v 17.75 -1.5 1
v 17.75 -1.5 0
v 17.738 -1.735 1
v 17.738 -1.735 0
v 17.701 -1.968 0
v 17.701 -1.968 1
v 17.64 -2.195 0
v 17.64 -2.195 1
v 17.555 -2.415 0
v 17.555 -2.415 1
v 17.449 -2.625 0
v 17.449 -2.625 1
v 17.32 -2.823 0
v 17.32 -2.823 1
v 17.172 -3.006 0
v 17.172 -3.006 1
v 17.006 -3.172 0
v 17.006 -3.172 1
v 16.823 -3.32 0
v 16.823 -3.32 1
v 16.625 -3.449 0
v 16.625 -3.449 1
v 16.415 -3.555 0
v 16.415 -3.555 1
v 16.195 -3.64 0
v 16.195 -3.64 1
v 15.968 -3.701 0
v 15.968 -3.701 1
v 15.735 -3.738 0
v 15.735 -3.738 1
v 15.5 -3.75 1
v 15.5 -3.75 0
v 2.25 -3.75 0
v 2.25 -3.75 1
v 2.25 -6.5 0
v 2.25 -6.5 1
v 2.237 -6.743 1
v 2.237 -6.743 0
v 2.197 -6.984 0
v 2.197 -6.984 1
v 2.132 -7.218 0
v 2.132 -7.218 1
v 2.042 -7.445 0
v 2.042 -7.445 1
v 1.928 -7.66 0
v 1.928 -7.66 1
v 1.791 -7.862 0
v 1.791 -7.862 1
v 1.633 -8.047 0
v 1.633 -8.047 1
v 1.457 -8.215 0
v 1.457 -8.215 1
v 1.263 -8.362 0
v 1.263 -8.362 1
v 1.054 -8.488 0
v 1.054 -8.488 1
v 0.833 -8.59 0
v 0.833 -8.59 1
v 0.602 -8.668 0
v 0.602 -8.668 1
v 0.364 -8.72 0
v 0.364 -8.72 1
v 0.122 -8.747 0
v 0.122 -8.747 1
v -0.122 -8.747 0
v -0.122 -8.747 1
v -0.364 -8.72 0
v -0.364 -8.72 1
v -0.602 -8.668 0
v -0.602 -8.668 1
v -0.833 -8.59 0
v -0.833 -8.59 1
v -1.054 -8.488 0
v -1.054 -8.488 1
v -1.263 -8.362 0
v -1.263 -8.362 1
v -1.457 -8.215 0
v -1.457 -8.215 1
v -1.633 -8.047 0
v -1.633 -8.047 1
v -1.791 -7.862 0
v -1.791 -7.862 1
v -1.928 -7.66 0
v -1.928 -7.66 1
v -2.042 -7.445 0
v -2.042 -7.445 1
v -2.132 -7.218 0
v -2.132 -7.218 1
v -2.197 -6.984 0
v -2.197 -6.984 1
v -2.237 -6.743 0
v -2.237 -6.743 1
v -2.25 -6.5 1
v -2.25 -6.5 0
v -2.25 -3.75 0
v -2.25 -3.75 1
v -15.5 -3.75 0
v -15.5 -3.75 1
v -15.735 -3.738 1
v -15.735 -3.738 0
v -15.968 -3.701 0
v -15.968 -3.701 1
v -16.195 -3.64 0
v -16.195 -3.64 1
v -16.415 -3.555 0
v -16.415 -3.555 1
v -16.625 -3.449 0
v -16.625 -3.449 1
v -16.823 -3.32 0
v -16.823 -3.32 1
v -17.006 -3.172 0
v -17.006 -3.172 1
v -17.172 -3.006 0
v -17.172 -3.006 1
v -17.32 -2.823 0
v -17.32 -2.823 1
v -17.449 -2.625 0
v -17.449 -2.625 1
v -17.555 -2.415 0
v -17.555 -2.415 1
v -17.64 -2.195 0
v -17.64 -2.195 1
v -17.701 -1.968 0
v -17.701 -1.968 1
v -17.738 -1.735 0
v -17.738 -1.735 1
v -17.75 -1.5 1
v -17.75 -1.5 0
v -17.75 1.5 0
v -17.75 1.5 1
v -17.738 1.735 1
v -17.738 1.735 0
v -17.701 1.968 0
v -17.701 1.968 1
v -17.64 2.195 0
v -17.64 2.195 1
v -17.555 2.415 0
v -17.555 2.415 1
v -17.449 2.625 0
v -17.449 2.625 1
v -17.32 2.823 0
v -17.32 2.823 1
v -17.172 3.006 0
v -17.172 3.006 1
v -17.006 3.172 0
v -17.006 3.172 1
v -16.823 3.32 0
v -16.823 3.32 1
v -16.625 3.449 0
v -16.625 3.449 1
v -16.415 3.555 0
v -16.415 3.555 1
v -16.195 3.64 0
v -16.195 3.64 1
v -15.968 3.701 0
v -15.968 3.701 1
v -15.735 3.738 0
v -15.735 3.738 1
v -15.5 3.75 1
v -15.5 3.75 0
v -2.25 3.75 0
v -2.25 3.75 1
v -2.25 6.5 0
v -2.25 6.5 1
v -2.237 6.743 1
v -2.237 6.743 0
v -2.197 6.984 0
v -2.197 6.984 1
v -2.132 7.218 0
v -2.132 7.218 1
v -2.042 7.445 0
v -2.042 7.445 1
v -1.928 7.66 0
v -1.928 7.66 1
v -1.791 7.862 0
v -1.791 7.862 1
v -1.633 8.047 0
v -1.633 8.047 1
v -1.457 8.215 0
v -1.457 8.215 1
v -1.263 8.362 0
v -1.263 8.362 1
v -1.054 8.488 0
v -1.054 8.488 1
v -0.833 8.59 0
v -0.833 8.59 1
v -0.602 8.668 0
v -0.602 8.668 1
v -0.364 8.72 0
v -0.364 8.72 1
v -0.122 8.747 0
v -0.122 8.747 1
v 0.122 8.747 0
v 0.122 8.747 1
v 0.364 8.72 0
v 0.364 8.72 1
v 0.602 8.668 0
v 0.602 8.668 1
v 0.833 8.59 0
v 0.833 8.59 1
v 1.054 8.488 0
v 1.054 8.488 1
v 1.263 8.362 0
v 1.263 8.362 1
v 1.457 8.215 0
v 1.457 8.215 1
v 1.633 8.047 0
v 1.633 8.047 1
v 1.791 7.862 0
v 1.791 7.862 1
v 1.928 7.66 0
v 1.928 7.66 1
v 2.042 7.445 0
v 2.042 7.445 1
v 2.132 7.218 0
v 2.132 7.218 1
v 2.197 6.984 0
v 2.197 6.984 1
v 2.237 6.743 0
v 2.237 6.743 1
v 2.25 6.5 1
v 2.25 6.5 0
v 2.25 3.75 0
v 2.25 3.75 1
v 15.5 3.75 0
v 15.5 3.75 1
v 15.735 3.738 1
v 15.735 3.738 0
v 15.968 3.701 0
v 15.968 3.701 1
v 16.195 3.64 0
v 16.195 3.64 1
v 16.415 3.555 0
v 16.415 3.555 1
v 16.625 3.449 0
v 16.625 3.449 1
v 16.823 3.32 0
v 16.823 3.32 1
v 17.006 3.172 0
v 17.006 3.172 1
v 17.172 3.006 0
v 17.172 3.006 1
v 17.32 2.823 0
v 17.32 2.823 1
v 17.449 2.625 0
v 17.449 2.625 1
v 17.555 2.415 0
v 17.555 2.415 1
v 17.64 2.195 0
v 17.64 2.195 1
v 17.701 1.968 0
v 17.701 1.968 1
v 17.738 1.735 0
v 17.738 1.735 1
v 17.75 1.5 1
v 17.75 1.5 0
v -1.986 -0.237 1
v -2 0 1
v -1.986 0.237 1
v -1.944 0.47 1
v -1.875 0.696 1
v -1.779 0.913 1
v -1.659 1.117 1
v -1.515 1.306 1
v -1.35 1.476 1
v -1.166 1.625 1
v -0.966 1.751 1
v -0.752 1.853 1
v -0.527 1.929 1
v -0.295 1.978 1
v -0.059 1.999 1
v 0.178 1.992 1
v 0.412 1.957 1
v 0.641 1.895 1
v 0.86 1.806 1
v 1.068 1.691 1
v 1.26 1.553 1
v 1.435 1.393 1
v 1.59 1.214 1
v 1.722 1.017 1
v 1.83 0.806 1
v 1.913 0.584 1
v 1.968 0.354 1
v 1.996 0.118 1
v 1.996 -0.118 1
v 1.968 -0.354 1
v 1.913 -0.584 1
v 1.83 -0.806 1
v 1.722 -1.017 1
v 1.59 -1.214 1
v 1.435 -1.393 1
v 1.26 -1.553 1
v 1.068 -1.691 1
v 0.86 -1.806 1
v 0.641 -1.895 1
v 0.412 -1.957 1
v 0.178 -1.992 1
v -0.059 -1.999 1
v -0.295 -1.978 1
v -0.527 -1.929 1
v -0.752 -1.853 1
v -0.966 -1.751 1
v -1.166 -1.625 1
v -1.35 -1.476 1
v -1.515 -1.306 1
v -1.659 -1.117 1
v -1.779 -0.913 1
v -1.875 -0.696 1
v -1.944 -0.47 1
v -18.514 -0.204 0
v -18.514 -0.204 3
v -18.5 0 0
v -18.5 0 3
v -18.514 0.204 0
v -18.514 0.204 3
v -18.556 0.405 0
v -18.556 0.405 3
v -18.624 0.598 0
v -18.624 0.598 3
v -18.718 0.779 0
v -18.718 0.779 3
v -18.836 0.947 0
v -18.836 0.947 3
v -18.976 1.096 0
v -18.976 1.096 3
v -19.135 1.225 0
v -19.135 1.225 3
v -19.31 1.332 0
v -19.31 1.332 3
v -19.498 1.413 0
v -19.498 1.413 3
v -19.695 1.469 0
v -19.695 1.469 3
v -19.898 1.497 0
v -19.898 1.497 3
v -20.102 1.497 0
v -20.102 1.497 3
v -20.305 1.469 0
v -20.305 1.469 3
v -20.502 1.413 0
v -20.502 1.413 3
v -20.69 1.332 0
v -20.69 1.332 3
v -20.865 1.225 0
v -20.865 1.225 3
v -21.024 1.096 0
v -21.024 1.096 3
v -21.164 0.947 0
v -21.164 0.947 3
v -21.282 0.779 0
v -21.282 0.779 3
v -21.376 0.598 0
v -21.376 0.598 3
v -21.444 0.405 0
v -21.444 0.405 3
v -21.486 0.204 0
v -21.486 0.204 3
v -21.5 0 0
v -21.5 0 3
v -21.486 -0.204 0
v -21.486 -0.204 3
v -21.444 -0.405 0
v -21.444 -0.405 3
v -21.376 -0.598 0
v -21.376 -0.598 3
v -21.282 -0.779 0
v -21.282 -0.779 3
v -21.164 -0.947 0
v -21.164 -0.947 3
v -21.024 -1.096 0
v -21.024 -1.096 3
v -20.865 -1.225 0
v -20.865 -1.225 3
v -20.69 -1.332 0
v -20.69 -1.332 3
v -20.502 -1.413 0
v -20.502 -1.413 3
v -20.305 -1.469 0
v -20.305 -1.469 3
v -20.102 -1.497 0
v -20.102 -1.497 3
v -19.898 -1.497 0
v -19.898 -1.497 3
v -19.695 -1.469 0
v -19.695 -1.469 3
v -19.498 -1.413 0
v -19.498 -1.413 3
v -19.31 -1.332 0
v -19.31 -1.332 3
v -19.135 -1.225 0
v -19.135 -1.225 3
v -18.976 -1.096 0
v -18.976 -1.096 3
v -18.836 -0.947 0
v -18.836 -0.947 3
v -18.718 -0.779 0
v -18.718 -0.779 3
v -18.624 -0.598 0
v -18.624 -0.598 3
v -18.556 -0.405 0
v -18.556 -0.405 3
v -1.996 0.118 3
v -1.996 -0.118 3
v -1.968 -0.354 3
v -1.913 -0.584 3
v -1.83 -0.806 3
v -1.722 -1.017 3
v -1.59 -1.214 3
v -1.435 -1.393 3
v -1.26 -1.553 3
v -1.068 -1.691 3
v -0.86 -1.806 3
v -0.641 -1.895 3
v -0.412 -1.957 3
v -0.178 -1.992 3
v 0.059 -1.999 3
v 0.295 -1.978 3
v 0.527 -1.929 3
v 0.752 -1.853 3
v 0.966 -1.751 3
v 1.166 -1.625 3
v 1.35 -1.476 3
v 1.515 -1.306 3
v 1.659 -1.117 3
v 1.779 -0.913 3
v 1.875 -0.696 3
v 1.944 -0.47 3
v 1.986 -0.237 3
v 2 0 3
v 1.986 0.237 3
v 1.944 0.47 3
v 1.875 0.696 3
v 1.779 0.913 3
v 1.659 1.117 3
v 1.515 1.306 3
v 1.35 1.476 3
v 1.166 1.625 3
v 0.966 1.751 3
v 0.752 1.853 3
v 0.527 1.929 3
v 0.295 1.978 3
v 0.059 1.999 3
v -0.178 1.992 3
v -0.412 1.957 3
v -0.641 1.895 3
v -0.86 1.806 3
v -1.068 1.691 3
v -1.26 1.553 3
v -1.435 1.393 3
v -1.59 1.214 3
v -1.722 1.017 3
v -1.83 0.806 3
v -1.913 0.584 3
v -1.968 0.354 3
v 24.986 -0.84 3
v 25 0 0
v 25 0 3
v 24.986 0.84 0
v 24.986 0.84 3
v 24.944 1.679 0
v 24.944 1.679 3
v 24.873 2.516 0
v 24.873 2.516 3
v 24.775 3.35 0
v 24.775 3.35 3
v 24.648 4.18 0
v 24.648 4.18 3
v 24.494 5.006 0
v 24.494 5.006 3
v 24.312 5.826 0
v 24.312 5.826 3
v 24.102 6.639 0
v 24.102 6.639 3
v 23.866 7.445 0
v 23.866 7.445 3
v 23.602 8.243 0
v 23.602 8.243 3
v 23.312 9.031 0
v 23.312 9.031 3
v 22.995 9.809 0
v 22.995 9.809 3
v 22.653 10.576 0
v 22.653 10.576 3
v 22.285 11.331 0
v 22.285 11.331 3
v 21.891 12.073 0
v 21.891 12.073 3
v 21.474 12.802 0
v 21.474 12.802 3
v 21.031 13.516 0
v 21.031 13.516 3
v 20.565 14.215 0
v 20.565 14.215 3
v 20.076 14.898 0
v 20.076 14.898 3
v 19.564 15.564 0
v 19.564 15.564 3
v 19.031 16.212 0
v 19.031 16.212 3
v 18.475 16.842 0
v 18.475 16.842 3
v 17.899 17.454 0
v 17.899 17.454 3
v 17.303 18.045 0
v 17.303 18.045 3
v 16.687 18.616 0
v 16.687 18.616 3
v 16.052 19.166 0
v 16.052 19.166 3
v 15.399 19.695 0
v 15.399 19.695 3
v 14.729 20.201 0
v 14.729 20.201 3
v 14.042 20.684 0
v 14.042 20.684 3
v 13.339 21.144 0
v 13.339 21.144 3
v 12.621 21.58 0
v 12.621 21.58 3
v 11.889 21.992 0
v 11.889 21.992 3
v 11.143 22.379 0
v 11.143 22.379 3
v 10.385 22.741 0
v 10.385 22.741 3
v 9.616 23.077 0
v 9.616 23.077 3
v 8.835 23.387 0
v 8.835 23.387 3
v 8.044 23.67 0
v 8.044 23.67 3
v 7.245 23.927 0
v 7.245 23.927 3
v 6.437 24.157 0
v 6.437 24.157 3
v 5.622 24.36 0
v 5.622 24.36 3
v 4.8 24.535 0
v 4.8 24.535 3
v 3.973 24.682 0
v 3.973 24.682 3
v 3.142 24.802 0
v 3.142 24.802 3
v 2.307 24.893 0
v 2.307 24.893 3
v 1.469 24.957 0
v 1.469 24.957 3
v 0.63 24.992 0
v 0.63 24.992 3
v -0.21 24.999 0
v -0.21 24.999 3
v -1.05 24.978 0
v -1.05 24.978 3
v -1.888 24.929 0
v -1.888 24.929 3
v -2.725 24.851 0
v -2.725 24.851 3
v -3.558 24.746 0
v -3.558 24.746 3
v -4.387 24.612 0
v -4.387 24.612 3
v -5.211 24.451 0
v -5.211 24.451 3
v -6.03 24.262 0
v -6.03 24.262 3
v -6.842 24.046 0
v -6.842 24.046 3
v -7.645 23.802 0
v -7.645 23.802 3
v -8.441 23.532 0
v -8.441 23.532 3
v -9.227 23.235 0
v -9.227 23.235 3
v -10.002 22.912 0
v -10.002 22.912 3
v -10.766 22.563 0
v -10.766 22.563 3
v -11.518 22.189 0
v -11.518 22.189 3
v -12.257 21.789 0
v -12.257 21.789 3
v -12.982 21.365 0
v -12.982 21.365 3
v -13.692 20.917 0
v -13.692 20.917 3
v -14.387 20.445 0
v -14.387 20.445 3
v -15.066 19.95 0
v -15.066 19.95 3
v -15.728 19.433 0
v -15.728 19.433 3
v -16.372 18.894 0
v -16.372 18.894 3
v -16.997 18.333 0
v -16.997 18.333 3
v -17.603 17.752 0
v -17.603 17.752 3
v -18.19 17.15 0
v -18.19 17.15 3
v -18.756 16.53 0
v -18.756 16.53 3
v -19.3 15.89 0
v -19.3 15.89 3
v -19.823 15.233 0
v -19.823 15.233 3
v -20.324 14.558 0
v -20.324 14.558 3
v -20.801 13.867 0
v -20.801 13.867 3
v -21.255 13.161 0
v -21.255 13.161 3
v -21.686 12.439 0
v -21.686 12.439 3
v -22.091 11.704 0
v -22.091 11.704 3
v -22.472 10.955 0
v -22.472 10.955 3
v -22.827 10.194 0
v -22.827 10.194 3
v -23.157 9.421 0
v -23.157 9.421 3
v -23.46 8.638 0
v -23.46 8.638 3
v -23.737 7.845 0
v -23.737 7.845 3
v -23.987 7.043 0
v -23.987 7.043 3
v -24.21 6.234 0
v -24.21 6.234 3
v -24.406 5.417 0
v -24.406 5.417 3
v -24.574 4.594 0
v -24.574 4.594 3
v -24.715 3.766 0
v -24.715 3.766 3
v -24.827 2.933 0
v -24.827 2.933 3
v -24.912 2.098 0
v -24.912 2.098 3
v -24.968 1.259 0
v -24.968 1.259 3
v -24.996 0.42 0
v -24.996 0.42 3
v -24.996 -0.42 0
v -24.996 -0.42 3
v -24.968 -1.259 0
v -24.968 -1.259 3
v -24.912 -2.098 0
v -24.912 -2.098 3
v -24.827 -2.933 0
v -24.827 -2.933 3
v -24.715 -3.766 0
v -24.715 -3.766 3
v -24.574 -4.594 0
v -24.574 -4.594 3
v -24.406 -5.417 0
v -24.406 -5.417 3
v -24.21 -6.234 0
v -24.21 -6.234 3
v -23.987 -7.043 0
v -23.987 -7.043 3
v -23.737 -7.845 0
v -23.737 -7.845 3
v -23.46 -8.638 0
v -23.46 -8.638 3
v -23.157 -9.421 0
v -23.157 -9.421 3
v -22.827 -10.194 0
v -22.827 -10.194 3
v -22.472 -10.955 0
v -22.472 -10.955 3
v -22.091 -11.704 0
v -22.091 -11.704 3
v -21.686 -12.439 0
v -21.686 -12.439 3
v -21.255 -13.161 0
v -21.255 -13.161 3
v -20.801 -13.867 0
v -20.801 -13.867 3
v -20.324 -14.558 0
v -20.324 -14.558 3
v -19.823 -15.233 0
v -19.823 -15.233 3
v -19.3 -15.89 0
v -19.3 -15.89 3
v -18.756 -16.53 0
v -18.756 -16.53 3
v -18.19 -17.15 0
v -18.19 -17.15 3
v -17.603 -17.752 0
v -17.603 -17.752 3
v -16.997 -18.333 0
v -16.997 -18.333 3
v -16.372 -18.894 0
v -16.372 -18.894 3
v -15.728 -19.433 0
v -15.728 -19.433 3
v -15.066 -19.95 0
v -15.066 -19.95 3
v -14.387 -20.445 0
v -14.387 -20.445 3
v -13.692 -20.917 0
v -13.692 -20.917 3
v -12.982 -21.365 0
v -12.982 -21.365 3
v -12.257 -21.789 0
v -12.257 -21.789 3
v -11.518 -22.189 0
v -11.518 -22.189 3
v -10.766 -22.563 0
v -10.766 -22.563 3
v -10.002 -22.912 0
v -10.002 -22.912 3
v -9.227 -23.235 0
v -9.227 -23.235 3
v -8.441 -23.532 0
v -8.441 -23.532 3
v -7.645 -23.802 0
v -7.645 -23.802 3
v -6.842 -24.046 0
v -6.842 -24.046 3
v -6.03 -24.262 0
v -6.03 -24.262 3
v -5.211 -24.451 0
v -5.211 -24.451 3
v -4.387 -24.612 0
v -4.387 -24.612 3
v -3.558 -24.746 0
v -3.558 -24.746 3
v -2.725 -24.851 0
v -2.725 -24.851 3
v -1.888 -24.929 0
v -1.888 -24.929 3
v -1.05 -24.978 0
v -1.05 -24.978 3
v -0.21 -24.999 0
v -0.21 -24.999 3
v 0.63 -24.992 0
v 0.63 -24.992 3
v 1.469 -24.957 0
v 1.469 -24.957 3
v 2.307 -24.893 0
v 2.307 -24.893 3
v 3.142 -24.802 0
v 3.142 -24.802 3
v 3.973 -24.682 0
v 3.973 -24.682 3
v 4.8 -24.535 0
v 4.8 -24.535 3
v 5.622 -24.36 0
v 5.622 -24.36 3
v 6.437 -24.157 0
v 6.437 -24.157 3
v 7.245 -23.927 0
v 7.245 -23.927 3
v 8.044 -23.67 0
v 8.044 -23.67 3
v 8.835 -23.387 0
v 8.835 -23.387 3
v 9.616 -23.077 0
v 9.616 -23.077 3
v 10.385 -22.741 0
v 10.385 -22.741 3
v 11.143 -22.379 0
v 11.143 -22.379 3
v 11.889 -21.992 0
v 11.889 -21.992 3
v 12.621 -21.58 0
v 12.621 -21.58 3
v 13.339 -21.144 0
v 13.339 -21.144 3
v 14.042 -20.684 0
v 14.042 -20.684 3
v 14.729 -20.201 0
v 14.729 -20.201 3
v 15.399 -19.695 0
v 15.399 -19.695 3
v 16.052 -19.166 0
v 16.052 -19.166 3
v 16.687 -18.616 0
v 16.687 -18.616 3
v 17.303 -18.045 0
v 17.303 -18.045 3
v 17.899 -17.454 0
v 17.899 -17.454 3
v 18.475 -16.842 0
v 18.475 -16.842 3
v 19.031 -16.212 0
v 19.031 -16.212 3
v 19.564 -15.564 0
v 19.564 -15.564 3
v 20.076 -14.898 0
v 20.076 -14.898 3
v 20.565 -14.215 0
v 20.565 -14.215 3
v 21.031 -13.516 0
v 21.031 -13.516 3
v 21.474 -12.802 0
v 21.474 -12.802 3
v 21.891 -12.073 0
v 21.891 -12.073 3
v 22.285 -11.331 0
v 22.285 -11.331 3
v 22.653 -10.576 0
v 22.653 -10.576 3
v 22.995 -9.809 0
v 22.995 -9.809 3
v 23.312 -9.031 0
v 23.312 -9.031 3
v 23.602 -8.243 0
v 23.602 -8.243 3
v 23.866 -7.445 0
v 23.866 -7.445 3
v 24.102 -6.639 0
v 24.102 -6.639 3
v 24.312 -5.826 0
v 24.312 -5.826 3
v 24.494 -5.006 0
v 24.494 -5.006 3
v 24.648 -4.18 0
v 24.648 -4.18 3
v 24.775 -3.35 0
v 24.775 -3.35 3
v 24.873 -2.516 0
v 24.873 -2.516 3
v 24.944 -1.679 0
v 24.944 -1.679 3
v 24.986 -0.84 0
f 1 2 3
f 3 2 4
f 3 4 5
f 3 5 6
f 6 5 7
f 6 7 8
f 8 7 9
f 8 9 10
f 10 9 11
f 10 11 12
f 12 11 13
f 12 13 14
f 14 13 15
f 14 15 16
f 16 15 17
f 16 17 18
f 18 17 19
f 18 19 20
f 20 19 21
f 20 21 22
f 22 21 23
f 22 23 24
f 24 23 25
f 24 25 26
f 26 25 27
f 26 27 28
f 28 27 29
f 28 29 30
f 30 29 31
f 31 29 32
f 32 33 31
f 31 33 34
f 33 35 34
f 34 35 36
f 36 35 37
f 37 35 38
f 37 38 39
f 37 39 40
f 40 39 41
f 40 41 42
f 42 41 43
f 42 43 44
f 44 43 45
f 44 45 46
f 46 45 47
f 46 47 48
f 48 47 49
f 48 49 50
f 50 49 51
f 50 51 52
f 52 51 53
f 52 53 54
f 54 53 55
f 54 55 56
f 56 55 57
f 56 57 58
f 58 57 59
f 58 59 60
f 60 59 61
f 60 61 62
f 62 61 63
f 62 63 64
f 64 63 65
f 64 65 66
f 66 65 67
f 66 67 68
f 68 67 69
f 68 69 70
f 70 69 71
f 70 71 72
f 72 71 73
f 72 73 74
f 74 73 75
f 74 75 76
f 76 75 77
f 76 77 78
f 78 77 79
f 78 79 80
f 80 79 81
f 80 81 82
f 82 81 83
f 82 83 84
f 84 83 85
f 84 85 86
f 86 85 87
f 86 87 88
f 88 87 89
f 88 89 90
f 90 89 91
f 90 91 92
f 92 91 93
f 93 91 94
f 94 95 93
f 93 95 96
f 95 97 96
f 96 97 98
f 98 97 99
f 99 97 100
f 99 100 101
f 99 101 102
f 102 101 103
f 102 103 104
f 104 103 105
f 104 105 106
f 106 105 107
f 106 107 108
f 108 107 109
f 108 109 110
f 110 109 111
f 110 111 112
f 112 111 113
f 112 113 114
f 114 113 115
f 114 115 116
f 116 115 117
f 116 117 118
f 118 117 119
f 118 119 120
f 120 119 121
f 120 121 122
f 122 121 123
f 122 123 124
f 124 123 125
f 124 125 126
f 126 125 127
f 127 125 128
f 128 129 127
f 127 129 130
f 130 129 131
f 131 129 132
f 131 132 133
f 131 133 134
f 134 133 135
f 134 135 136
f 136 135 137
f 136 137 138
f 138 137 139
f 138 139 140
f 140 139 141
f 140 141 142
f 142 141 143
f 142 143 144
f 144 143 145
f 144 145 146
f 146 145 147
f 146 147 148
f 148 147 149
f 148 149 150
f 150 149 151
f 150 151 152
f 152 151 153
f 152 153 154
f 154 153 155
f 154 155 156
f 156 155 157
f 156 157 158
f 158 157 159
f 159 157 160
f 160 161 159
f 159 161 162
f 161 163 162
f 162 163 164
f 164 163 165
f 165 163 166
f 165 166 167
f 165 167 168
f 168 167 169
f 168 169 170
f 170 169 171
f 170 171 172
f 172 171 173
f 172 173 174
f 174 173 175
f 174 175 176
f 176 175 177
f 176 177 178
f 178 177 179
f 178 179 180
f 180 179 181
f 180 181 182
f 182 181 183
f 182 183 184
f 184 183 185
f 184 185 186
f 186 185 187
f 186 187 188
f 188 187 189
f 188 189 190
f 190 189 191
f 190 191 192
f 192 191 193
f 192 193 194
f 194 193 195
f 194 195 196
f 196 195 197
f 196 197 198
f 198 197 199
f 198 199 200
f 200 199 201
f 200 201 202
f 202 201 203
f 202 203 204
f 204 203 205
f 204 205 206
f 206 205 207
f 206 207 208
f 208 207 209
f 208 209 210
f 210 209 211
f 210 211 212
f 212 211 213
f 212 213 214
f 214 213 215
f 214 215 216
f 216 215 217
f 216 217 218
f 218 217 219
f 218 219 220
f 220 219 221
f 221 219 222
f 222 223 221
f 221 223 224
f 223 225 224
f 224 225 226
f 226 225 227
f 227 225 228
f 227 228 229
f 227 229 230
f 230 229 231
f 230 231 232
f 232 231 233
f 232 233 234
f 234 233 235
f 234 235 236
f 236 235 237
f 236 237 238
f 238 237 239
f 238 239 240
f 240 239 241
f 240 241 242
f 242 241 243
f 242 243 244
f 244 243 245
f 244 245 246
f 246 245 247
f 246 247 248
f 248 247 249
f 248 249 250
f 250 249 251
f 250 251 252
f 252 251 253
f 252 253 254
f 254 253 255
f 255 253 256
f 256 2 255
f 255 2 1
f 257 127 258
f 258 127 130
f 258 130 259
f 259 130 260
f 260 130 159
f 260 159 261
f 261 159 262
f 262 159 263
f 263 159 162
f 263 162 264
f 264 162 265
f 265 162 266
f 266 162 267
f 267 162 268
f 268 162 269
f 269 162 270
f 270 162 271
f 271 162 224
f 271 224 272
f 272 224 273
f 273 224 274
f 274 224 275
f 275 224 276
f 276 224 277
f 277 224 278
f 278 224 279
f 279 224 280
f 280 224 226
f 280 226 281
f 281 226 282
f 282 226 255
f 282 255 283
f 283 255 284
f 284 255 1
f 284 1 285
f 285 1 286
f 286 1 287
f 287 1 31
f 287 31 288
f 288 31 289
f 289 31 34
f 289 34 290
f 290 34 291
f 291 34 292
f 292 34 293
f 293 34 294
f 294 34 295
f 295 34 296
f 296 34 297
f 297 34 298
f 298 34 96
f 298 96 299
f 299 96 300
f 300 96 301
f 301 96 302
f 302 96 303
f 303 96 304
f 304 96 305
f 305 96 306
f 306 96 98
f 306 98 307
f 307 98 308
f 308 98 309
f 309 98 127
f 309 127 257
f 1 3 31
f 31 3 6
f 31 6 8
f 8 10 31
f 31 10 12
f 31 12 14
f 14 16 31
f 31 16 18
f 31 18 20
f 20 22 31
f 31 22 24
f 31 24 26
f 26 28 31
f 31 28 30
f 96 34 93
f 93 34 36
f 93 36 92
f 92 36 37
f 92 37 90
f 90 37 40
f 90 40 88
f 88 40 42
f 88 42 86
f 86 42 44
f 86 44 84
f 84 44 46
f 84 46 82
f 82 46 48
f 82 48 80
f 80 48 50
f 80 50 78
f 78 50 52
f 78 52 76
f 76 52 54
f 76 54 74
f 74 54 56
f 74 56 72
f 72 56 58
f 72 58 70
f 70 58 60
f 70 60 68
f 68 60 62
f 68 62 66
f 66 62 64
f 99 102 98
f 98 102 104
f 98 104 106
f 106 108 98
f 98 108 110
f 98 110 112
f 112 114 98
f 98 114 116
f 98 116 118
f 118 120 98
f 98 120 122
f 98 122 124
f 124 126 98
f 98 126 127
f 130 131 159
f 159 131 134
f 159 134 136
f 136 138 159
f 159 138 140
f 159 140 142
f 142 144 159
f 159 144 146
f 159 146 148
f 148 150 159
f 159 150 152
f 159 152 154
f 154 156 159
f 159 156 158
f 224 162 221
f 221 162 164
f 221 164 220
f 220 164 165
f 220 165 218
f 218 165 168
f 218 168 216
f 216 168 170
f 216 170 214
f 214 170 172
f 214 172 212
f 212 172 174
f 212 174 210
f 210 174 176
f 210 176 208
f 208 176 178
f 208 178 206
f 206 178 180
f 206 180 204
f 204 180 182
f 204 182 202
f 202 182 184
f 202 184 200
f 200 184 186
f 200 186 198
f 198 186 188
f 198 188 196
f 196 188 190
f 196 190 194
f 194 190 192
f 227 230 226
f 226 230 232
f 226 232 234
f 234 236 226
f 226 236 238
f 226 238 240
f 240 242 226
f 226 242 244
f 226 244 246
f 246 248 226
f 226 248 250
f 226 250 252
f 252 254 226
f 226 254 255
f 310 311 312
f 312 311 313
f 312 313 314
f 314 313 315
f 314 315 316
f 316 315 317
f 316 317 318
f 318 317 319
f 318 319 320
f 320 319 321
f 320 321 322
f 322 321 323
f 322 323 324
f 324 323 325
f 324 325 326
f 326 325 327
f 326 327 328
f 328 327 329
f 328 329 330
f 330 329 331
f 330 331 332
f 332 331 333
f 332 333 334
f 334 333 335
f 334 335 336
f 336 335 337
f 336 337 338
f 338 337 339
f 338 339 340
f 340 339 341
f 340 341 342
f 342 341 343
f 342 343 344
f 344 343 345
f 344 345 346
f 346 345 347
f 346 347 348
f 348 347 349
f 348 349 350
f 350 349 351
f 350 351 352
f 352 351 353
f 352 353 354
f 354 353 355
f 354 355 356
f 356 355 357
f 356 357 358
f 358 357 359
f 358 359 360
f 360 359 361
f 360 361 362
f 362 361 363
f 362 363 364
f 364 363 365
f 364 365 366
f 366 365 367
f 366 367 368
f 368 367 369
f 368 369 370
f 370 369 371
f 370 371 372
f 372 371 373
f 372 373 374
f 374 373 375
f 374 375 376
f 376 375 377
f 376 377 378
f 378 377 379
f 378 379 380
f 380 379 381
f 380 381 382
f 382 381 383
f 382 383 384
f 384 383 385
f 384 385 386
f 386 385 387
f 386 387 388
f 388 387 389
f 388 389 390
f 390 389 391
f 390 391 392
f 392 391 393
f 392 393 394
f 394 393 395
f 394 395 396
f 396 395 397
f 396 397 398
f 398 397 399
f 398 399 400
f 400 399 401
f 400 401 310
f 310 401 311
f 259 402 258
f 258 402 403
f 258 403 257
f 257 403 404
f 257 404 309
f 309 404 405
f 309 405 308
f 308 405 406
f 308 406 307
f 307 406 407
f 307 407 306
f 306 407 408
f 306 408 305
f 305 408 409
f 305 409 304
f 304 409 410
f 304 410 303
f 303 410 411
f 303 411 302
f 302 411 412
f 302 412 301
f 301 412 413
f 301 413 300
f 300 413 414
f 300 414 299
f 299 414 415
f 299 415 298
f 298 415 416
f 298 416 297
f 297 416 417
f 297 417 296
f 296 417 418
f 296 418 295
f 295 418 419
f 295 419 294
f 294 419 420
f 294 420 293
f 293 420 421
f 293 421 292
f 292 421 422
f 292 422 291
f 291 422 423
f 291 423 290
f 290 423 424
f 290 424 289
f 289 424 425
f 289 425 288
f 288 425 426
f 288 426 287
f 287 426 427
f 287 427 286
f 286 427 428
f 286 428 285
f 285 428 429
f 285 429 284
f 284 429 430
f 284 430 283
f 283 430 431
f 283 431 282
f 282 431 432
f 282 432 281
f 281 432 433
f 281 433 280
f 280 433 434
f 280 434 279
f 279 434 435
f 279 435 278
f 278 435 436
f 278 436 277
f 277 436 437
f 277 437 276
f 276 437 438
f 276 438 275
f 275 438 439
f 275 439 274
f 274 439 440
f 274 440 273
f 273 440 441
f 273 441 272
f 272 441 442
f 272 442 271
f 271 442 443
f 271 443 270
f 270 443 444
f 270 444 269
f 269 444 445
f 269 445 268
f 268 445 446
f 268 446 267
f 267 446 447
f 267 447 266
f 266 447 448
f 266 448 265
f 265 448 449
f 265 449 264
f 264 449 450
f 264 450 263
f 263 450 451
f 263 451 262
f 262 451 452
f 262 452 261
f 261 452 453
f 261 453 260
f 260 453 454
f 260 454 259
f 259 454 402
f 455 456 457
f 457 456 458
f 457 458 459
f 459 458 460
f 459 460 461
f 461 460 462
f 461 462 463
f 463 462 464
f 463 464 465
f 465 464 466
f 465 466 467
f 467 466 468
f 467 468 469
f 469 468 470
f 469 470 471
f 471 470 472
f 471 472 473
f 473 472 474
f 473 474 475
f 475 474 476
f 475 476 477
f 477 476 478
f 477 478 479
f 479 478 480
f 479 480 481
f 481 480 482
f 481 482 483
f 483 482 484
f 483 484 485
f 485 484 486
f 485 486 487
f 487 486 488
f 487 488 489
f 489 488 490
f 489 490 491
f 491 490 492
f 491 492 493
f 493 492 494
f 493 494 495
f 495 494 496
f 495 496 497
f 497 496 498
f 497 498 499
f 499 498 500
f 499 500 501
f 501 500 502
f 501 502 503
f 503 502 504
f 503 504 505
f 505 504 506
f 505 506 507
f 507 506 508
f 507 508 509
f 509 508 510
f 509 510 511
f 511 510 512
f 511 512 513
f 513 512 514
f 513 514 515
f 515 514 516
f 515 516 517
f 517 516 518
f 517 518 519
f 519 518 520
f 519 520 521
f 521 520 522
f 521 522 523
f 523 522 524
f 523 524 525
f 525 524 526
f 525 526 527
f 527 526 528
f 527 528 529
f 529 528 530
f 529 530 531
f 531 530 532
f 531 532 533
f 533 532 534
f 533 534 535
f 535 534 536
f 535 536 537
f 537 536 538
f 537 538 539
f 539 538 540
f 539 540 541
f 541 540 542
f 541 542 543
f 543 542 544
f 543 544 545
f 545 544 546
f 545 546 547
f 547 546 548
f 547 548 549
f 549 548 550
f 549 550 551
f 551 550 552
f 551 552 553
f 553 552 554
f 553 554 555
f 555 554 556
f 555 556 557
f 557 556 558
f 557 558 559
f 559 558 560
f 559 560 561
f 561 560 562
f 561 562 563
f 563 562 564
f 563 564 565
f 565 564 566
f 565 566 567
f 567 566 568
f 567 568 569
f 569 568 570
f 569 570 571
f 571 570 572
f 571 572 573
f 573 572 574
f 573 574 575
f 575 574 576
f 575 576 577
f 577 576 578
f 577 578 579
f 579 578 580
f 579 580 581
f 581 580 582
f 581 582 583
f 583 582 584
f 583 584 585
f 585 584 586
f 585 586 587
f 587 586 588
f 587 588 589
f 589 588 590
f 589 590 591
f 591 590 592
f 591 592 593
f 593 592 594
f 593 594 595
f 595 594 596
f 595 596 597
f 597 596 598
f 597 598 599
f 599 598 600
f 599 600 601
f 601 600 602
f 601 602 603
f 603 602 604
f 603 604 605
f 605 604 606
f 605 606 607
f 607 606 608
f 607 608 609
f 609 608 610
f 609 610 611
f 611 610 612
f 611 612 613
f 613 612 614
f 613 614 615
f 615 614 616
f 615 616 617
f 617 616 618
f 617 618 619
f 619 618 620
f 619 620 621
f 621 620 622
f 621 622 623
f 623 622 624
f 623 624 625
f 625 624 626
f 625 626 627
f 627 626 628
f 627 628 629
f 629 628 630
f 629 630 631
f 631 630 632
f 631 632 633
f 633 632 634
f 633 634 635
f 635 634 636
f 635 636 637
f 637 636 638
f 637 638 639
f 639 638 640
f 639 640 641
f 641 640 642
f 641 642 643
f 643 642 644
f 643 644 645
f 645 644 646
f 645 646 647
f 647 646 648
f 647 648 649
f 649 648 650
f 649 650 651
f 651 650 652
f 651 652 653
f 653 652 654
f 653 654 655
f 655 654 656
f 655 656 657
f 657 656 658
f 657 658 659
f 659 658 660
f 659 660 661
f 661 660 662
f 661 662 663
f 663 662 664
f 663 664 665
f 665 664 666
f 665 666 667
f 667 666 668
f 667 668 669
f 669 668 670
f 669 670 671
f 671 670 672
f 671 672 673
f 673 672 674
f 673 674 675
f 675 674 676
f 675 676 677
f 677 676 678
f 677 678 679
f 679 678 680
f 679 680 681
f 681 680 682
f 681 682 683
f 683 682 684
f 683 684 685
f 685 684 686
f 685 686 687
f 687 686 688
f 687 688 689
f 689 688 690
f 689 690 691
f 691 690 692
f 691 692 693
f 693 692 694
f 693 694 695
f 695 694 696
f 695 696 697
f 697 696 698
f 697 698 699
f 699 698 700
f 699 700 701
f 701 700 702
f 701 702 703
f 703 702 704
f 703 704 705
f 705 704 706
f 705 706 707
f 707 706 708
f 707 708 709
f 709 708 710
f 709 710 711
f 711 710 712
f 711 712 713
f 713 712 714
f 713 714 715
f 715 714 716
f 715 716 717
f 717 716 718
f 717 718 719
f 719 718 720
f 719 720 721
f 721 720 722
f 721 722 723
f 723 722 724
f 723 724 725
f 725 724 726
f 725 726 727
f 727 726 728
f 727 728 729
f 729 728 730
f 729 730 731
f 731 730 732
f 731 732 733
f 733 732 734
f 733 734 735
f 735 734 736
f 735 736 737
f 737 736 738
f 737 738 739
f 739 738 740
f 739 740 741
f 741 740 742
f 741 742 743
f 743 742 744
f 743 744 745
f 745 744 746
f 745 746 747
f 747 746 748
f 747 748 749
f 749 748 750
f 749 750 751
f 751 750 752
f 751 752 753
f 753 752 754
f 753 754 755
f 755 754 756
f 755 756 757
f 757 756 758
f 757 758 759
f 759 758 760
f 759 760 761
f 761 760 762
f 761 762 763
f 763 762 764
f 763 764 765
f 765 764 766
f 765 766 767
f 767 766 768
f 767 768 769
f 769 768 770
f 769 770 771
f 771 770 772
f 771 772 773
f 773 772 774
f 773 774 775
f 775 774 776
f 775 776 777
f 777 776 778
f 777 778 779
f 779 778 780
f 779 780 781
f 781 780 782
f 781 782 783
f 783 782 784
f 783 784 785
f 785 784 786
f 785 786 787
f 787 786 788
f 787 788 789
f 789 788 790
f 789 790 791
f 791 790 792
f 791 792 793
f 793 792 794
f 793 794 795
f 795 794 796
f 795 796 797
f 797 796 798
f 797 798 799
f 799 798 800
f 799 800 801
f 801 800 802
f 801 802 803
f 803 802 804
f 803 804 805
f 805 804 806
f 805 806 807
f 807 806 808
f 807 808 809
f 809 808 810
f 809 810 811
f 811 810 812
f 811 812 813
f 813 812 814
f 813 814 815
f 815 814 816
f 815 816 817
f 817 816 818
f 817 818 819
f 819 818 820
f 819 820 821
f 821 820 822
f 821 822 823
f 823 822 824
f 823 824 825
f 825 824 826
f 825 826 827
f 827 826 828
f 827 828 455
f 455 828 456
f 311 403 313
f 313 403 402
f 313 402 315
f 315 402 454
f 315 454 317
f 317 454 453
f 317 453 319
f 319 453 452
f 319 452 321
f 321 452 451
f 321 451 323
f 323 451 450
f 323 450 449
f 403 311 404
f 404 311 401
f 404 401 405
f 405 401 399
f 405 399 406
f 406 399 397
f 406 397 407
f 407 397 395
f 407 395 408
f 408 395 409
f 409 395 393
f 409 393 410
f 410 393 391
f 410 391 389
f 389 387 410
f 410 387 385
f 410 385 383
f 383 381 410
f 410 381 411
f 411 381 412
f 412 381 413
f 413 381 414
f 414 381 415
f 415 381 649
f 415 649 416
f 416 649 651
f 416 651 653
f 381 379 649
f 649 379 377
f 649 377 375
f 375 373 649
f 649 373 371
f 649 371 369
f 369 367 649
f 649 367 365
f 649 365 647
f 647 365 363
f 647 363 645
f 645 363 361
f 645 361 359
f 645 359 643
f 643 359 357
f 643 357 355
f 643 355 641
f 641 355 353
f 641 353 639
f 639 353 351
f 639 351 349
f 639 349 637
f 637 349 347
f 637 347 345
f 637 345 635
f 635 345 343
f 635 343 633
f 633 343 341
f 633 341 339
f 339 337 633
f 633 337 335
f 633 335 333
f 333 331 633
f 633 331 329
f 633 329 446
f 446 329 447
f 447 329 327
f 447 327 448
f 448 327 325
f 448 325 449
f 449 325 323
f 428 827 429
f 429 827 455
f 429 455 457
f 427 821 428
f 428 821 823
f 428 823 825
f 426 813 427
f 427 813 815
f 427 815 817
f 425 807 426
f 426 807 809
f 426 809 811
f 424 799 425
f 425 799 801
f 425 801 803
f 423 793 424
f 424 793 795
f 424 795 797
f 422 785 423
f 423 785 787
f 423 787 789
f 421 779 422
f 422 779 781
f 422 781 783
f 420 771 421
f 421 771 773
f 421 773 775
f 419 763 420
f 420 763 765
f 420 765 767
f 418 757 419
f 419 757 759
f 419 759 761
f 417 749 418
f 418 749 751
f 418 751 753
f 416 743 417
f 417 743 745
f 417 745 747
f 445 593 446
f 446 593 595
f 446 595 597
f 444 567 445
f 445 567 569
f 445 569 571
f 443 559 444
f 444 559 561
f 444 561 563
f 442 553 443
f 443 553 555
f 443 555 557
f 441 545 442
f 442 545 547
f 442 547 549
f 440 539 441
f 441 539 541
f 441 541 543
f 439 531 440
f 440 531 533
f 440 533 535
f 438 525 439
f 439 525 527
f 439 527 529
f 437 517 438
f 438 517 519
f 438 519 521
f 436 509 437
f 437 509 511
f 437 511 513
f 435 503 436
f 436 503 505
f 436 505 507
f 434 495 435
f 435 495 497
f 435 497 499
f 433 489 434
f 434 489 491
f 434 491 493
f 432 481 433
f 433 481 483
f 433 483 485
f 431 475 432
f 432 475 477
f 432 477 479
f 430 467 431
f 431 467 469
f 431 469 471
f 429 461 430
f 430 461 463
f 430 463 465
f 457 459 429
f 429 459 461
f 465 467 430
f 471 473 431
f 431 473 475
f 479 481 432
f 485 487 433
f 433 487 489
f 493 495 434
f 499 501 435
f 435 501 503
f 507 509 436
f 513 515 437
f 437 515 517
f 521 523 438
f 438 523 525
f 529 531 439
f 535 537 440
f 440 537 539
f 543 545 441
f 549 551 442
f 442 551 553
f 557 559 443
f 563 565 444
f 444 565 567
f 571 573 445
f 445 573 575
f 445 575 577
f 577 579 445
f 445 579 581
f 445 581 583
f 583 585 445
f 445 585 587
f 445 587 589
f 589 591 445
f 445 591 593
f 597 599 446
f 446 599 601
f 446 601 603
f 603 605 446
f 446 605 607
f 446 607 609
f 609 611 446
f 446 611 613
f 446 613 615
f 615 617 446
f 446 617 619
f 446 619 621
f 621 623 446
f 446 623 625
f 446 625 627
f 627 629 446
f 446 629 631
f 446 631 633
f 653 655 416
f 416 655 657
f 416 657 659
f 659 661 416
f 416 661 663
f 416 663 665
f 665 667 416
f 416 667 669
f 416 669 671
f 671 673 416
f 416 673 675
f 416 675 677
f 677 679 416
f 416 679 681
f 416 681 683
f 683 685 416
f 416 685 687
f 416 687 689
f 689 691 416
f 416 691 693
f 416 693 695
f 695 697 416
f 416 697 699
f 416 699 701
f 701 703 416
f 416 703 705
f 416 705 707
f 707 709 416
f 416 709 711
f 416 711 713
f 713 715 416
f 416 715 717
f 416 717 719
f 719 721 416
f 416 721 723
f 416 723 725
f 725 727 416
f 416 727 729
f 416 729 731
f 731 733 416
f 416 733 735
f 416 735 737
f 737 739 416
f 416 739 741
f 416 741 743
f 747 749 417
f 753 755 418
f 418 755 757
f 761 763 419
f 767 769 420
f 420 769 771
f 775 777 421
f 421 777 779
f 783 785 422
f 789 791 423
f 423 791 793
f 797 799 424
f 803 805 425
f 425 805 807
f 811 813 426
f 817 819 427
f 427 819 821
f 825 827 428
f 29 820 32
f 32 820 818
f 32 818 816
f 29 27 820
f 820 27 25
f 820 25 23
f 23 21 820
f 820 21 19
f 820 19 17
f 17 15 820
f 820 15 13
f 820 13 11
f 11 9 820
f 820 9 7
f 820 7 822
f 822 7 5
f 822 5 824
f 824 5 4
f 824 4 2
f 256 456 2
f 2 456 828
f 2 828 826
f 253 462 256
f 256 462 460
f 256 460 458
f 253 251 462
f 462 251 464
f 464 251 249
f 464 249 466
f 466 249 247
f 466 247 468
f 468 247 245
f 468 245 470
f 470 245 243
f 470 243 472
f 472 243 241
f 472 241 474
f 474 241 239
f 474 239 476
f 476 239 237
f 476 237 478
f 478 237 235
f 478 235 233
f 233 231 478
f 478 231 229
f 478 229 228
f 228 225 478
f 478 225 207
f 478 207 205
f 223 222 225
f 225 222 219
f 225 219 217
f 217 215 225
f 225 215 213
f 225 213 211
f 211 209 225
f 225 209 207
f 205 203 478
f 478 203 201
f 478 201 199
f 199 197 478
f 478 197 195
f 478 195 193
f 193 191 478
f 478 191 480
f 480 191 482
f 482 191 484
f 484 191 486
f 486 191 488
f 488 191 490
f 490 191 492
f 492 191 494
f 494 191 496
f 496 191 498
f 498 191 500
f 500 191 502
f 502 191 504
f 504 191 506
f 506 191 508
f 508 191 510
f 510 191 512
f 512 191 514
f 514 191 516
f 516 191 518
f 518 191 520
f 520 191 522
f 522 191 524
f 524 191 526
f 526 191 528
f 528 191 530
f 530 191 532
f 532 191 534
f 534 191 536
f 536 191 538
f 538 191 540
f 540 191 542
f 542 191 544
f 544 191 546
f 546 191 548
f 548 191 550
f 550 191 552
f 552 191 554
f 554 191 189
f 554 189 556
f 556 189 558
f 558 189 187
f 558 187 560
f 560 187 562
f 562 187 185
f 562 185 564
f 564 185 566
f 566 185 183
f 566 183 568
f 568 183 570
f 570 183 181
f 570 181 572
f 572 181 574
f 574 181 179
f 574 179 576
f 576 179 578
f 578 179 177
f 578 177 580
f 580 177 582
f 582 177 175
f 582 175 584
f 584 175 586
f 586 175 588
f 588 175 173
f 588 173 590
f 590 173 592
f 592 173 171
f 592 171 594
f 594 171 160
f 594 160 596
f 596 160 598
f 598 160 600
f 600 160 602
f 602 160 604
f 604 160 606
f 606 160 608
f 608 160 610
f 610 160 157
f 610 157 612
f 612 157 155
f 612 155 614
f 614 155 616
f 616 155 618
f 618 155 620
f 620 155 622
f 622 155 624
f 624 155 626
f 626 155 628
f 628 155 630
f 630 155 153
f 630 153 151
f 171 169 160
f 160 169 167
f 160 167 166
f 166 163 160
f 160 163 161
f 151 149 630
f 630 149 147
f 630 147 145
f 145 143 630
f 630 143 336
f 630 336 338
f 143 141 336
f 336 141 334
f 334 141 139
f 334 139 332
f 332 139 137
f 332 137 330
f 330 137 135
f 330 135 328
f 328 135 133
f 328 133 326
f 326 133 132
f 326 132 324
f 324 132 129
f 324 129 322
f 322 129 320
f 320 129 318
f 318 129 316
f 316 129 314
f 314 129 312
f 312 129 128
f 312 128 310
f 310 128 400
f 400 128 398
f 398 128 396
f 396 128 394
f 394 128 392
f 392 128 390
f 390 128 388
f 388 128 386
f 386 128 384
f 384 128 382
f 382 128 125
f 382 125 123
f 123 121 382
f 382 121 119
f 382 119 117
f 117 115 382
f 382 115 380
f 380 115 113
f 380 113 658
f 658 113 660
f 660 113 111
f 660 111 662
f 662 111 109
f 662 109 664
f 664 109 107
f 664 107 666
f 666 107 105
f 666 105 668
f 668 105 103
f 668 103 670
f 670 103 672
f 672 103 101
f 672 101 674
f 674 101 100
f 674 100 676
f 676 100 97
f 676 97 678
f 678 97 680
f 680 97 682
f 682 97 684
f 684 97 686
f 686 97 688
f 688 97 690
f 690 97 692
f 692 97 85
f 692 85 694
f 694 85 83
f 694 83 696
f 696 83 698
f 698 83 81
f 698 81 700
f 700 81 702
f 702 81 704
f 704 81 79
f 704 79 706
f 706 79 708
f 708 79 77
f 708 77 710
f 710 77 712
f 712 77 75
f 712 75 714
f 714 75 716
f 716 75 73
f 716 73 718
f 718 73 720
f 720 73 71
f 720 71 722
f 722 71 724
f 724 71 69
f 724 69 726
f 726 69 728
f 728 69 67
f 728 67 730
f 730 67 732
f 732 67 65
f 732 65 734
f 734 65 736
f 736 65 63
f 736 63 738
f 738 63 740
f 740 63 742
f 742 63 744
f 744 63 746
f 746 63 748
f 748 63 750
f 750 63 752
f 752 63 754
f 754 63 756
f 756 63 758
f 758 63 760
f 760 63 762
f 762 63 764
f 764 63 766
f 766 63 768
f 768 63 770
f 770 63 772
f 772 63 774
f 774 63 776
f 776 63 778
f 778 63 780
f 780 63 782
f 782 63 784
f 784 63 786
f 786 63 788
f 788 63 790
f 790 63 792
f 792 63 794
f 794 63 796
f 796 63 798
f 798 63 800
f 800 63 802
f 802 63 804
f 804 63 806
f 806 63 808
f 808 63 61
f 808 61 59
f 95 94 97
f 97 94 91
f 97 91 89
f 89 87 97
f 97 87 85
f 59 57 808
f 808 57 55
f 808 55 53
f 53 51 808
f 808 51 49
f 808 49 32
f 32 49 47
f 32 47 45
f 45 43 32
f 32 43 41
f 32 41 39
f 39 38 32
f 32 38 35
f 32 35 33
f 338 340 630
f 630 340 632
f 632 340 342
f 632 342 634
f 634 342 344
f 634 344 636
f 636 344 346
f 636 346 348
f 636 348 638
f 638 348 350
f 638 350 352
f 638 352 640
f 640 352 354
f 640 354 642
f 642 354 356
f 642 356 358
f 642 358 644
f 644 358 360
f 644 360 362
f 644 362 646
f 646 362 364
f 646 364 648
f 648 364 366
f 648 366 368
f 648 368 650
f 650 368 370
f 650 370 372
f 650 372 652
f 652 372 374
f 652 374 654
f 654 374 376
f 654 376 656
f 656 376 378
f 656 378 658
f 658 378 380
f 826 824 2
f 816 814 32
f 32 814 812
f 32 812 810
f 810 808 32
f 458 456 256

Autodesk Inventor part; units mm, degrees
ref_plane "YZ Plane" through (0, 0, 0) normal (1, 0, 0) x (0, 1, 0)
ref_plane "XZ Plane" through (0, 0, 0) normal (0, 1, 0) x (-1, 0, 0)
ref_plane "XY Plane" through (0, 0, 0) normal (0, 0, 1) x (1, 0, 0)
sketch "Boceto1" plane through (0, 0, 0) normal (0, 0, 1) x (1, 0, 0)
  circle A0 centre (0, 0) radius 25
  dimension "d0" = 50
extrude "Extrusión1" add sketch "Boceto1" along normal blind 3
sketch "Boceto2" plane through (0, 0, 3) normal (0, 0, 1) x (1, 0, 0)
  circle A0 centre (0, 0) radius 2
  dimension "d3" = 4
extrude "Extrusión2" cut sketch "Boceto2" against normal blind 3
sketch "Boceto3" plane through (0, 0, 3) normal (0, 0, 1) x (1, 0, 0)
  circle A0 centre (0, 0) radius 2 construction
  circle A1 centre (0, 0) radius 25 construction
  line L0 (0, 0) -> (-25, 0) construction
  circle A2 centre (0, 0) radius 25 construction
  circle A3 centre (-20, 0) radius 1.5
  dimension "d6" = 3
  dimension "d7" = 20
extrude "Extrusión3" cut sketch "Boceto3" against normal blind 3
sketch "Boceto4" plane through (0, 0, 0) normal (0, 0, -1) x (-1, 0, 0)
  arc A0 (-17.5, -1.5) -> (-15.5, -3.5) centre (-15.5, -1.5) ccw construction
  line L0 (-2, -3.5) -> (-15.5, -3.5) construction
  line L1 (-2, -6.5) -> (-2, -3.5) construction
  arc A1 (-2, -6.5) -> (2, -6.5) centre (0, -6.5) ccw construction
  line L2 (2, -3.5) -> (2, -6.5) construction
  line L3 (15.5, -3.5) -> (2, -3.5) construction
  arc A2 (15.5, -3.5) -> (17.5, -1.5) centre (15.5, -1.5) ccw construction
  line L4 (17.5, 1.5) -> (17.5, -1.5) construction
  arc A3 (17.5, 1.5) -> (15.5, 3.5) centre (15.5, 1.5) ccw construction
  line L5 (2, 3.5) -> (15.5, 3.5) construction
  line L6 (2, 6.5) -> (2, 3.5) construction
  arc A4 (2, 6.5) -> (-2, 6.5) centre (0, 6.5) ccw construction
  line L7 (-2, 3.5) -> (-2, 6.5) construction
  line L8 (-15.5, 3.5) -> (-2, 3.5) construction
  arc A5 (-15.5, 3.5) -> (-17.5, 1.5) centre (-15.5, 1.5) ccw construction
  line L9 (-17.5, -1.5) -> (-17.5, 1.5) construction
  line L10 (0, 8.5) -> (0, -8.5) construction
  line L11 (-17.5, 0) -> (17.5, 0) construction
  line L12 (-2.25, 3.75) -> (-2.25, 6.5)
  arc A6 (2.25, 6.5) -> (-2.25, 6.5) centre (0, 6.5) ccw
  line L13 (2.25, 6.5) -> (2.25, 3.75)
  line L14 (2.25, 3.75) -> (15.5, 3.75)
  arc A7 (17.75, 1.5) -> (15.5, 3.75) centre (15.5, 1.5) ccw
  line L15 (17.75, 1.5) -> (17.75, -1.5)
  arc A8 (15.5, -3.75) -> (17.75, -1.5) centre (15.5, -1.5) ccw
  line L16 (15.5, -3.75) -> (2.25, -3.75)
  line L17 (2.25, -3.75) -> (2.25, -6.5)
  arc A9 (-2.25, -6.5) -> (2.25, -6.5) centre (0, -6.5) ccw
  line L18 (-2.25, -6.5) -> (-2.25, -3.75)
  line L19 (-2.25, -3.75) -> (-15.5, -3.75)
  arc A10 (-17.75, -1.5) -> (-15.5, -3.75) centre (-15.5, -1.5) ccw
  line L20 (-17.75, -1.5) -> (-17.75, 1.5)
  arc A11 (-15.5, 3.75) -> (-17.75, 1.5) centre (-15.5, 1.5) ccw
  line L21 (-15.5, 3.75) -> (-2.25, 3.75)
  point P0 (0, 0)
  point P1 (17.5, -3.5)
  point P2 (0, 0)
  dimension "d10" = 0.25
extrude "Extrusión4" cut sketch "Boceto4" against normal blind 1
properties part number "rueda"
